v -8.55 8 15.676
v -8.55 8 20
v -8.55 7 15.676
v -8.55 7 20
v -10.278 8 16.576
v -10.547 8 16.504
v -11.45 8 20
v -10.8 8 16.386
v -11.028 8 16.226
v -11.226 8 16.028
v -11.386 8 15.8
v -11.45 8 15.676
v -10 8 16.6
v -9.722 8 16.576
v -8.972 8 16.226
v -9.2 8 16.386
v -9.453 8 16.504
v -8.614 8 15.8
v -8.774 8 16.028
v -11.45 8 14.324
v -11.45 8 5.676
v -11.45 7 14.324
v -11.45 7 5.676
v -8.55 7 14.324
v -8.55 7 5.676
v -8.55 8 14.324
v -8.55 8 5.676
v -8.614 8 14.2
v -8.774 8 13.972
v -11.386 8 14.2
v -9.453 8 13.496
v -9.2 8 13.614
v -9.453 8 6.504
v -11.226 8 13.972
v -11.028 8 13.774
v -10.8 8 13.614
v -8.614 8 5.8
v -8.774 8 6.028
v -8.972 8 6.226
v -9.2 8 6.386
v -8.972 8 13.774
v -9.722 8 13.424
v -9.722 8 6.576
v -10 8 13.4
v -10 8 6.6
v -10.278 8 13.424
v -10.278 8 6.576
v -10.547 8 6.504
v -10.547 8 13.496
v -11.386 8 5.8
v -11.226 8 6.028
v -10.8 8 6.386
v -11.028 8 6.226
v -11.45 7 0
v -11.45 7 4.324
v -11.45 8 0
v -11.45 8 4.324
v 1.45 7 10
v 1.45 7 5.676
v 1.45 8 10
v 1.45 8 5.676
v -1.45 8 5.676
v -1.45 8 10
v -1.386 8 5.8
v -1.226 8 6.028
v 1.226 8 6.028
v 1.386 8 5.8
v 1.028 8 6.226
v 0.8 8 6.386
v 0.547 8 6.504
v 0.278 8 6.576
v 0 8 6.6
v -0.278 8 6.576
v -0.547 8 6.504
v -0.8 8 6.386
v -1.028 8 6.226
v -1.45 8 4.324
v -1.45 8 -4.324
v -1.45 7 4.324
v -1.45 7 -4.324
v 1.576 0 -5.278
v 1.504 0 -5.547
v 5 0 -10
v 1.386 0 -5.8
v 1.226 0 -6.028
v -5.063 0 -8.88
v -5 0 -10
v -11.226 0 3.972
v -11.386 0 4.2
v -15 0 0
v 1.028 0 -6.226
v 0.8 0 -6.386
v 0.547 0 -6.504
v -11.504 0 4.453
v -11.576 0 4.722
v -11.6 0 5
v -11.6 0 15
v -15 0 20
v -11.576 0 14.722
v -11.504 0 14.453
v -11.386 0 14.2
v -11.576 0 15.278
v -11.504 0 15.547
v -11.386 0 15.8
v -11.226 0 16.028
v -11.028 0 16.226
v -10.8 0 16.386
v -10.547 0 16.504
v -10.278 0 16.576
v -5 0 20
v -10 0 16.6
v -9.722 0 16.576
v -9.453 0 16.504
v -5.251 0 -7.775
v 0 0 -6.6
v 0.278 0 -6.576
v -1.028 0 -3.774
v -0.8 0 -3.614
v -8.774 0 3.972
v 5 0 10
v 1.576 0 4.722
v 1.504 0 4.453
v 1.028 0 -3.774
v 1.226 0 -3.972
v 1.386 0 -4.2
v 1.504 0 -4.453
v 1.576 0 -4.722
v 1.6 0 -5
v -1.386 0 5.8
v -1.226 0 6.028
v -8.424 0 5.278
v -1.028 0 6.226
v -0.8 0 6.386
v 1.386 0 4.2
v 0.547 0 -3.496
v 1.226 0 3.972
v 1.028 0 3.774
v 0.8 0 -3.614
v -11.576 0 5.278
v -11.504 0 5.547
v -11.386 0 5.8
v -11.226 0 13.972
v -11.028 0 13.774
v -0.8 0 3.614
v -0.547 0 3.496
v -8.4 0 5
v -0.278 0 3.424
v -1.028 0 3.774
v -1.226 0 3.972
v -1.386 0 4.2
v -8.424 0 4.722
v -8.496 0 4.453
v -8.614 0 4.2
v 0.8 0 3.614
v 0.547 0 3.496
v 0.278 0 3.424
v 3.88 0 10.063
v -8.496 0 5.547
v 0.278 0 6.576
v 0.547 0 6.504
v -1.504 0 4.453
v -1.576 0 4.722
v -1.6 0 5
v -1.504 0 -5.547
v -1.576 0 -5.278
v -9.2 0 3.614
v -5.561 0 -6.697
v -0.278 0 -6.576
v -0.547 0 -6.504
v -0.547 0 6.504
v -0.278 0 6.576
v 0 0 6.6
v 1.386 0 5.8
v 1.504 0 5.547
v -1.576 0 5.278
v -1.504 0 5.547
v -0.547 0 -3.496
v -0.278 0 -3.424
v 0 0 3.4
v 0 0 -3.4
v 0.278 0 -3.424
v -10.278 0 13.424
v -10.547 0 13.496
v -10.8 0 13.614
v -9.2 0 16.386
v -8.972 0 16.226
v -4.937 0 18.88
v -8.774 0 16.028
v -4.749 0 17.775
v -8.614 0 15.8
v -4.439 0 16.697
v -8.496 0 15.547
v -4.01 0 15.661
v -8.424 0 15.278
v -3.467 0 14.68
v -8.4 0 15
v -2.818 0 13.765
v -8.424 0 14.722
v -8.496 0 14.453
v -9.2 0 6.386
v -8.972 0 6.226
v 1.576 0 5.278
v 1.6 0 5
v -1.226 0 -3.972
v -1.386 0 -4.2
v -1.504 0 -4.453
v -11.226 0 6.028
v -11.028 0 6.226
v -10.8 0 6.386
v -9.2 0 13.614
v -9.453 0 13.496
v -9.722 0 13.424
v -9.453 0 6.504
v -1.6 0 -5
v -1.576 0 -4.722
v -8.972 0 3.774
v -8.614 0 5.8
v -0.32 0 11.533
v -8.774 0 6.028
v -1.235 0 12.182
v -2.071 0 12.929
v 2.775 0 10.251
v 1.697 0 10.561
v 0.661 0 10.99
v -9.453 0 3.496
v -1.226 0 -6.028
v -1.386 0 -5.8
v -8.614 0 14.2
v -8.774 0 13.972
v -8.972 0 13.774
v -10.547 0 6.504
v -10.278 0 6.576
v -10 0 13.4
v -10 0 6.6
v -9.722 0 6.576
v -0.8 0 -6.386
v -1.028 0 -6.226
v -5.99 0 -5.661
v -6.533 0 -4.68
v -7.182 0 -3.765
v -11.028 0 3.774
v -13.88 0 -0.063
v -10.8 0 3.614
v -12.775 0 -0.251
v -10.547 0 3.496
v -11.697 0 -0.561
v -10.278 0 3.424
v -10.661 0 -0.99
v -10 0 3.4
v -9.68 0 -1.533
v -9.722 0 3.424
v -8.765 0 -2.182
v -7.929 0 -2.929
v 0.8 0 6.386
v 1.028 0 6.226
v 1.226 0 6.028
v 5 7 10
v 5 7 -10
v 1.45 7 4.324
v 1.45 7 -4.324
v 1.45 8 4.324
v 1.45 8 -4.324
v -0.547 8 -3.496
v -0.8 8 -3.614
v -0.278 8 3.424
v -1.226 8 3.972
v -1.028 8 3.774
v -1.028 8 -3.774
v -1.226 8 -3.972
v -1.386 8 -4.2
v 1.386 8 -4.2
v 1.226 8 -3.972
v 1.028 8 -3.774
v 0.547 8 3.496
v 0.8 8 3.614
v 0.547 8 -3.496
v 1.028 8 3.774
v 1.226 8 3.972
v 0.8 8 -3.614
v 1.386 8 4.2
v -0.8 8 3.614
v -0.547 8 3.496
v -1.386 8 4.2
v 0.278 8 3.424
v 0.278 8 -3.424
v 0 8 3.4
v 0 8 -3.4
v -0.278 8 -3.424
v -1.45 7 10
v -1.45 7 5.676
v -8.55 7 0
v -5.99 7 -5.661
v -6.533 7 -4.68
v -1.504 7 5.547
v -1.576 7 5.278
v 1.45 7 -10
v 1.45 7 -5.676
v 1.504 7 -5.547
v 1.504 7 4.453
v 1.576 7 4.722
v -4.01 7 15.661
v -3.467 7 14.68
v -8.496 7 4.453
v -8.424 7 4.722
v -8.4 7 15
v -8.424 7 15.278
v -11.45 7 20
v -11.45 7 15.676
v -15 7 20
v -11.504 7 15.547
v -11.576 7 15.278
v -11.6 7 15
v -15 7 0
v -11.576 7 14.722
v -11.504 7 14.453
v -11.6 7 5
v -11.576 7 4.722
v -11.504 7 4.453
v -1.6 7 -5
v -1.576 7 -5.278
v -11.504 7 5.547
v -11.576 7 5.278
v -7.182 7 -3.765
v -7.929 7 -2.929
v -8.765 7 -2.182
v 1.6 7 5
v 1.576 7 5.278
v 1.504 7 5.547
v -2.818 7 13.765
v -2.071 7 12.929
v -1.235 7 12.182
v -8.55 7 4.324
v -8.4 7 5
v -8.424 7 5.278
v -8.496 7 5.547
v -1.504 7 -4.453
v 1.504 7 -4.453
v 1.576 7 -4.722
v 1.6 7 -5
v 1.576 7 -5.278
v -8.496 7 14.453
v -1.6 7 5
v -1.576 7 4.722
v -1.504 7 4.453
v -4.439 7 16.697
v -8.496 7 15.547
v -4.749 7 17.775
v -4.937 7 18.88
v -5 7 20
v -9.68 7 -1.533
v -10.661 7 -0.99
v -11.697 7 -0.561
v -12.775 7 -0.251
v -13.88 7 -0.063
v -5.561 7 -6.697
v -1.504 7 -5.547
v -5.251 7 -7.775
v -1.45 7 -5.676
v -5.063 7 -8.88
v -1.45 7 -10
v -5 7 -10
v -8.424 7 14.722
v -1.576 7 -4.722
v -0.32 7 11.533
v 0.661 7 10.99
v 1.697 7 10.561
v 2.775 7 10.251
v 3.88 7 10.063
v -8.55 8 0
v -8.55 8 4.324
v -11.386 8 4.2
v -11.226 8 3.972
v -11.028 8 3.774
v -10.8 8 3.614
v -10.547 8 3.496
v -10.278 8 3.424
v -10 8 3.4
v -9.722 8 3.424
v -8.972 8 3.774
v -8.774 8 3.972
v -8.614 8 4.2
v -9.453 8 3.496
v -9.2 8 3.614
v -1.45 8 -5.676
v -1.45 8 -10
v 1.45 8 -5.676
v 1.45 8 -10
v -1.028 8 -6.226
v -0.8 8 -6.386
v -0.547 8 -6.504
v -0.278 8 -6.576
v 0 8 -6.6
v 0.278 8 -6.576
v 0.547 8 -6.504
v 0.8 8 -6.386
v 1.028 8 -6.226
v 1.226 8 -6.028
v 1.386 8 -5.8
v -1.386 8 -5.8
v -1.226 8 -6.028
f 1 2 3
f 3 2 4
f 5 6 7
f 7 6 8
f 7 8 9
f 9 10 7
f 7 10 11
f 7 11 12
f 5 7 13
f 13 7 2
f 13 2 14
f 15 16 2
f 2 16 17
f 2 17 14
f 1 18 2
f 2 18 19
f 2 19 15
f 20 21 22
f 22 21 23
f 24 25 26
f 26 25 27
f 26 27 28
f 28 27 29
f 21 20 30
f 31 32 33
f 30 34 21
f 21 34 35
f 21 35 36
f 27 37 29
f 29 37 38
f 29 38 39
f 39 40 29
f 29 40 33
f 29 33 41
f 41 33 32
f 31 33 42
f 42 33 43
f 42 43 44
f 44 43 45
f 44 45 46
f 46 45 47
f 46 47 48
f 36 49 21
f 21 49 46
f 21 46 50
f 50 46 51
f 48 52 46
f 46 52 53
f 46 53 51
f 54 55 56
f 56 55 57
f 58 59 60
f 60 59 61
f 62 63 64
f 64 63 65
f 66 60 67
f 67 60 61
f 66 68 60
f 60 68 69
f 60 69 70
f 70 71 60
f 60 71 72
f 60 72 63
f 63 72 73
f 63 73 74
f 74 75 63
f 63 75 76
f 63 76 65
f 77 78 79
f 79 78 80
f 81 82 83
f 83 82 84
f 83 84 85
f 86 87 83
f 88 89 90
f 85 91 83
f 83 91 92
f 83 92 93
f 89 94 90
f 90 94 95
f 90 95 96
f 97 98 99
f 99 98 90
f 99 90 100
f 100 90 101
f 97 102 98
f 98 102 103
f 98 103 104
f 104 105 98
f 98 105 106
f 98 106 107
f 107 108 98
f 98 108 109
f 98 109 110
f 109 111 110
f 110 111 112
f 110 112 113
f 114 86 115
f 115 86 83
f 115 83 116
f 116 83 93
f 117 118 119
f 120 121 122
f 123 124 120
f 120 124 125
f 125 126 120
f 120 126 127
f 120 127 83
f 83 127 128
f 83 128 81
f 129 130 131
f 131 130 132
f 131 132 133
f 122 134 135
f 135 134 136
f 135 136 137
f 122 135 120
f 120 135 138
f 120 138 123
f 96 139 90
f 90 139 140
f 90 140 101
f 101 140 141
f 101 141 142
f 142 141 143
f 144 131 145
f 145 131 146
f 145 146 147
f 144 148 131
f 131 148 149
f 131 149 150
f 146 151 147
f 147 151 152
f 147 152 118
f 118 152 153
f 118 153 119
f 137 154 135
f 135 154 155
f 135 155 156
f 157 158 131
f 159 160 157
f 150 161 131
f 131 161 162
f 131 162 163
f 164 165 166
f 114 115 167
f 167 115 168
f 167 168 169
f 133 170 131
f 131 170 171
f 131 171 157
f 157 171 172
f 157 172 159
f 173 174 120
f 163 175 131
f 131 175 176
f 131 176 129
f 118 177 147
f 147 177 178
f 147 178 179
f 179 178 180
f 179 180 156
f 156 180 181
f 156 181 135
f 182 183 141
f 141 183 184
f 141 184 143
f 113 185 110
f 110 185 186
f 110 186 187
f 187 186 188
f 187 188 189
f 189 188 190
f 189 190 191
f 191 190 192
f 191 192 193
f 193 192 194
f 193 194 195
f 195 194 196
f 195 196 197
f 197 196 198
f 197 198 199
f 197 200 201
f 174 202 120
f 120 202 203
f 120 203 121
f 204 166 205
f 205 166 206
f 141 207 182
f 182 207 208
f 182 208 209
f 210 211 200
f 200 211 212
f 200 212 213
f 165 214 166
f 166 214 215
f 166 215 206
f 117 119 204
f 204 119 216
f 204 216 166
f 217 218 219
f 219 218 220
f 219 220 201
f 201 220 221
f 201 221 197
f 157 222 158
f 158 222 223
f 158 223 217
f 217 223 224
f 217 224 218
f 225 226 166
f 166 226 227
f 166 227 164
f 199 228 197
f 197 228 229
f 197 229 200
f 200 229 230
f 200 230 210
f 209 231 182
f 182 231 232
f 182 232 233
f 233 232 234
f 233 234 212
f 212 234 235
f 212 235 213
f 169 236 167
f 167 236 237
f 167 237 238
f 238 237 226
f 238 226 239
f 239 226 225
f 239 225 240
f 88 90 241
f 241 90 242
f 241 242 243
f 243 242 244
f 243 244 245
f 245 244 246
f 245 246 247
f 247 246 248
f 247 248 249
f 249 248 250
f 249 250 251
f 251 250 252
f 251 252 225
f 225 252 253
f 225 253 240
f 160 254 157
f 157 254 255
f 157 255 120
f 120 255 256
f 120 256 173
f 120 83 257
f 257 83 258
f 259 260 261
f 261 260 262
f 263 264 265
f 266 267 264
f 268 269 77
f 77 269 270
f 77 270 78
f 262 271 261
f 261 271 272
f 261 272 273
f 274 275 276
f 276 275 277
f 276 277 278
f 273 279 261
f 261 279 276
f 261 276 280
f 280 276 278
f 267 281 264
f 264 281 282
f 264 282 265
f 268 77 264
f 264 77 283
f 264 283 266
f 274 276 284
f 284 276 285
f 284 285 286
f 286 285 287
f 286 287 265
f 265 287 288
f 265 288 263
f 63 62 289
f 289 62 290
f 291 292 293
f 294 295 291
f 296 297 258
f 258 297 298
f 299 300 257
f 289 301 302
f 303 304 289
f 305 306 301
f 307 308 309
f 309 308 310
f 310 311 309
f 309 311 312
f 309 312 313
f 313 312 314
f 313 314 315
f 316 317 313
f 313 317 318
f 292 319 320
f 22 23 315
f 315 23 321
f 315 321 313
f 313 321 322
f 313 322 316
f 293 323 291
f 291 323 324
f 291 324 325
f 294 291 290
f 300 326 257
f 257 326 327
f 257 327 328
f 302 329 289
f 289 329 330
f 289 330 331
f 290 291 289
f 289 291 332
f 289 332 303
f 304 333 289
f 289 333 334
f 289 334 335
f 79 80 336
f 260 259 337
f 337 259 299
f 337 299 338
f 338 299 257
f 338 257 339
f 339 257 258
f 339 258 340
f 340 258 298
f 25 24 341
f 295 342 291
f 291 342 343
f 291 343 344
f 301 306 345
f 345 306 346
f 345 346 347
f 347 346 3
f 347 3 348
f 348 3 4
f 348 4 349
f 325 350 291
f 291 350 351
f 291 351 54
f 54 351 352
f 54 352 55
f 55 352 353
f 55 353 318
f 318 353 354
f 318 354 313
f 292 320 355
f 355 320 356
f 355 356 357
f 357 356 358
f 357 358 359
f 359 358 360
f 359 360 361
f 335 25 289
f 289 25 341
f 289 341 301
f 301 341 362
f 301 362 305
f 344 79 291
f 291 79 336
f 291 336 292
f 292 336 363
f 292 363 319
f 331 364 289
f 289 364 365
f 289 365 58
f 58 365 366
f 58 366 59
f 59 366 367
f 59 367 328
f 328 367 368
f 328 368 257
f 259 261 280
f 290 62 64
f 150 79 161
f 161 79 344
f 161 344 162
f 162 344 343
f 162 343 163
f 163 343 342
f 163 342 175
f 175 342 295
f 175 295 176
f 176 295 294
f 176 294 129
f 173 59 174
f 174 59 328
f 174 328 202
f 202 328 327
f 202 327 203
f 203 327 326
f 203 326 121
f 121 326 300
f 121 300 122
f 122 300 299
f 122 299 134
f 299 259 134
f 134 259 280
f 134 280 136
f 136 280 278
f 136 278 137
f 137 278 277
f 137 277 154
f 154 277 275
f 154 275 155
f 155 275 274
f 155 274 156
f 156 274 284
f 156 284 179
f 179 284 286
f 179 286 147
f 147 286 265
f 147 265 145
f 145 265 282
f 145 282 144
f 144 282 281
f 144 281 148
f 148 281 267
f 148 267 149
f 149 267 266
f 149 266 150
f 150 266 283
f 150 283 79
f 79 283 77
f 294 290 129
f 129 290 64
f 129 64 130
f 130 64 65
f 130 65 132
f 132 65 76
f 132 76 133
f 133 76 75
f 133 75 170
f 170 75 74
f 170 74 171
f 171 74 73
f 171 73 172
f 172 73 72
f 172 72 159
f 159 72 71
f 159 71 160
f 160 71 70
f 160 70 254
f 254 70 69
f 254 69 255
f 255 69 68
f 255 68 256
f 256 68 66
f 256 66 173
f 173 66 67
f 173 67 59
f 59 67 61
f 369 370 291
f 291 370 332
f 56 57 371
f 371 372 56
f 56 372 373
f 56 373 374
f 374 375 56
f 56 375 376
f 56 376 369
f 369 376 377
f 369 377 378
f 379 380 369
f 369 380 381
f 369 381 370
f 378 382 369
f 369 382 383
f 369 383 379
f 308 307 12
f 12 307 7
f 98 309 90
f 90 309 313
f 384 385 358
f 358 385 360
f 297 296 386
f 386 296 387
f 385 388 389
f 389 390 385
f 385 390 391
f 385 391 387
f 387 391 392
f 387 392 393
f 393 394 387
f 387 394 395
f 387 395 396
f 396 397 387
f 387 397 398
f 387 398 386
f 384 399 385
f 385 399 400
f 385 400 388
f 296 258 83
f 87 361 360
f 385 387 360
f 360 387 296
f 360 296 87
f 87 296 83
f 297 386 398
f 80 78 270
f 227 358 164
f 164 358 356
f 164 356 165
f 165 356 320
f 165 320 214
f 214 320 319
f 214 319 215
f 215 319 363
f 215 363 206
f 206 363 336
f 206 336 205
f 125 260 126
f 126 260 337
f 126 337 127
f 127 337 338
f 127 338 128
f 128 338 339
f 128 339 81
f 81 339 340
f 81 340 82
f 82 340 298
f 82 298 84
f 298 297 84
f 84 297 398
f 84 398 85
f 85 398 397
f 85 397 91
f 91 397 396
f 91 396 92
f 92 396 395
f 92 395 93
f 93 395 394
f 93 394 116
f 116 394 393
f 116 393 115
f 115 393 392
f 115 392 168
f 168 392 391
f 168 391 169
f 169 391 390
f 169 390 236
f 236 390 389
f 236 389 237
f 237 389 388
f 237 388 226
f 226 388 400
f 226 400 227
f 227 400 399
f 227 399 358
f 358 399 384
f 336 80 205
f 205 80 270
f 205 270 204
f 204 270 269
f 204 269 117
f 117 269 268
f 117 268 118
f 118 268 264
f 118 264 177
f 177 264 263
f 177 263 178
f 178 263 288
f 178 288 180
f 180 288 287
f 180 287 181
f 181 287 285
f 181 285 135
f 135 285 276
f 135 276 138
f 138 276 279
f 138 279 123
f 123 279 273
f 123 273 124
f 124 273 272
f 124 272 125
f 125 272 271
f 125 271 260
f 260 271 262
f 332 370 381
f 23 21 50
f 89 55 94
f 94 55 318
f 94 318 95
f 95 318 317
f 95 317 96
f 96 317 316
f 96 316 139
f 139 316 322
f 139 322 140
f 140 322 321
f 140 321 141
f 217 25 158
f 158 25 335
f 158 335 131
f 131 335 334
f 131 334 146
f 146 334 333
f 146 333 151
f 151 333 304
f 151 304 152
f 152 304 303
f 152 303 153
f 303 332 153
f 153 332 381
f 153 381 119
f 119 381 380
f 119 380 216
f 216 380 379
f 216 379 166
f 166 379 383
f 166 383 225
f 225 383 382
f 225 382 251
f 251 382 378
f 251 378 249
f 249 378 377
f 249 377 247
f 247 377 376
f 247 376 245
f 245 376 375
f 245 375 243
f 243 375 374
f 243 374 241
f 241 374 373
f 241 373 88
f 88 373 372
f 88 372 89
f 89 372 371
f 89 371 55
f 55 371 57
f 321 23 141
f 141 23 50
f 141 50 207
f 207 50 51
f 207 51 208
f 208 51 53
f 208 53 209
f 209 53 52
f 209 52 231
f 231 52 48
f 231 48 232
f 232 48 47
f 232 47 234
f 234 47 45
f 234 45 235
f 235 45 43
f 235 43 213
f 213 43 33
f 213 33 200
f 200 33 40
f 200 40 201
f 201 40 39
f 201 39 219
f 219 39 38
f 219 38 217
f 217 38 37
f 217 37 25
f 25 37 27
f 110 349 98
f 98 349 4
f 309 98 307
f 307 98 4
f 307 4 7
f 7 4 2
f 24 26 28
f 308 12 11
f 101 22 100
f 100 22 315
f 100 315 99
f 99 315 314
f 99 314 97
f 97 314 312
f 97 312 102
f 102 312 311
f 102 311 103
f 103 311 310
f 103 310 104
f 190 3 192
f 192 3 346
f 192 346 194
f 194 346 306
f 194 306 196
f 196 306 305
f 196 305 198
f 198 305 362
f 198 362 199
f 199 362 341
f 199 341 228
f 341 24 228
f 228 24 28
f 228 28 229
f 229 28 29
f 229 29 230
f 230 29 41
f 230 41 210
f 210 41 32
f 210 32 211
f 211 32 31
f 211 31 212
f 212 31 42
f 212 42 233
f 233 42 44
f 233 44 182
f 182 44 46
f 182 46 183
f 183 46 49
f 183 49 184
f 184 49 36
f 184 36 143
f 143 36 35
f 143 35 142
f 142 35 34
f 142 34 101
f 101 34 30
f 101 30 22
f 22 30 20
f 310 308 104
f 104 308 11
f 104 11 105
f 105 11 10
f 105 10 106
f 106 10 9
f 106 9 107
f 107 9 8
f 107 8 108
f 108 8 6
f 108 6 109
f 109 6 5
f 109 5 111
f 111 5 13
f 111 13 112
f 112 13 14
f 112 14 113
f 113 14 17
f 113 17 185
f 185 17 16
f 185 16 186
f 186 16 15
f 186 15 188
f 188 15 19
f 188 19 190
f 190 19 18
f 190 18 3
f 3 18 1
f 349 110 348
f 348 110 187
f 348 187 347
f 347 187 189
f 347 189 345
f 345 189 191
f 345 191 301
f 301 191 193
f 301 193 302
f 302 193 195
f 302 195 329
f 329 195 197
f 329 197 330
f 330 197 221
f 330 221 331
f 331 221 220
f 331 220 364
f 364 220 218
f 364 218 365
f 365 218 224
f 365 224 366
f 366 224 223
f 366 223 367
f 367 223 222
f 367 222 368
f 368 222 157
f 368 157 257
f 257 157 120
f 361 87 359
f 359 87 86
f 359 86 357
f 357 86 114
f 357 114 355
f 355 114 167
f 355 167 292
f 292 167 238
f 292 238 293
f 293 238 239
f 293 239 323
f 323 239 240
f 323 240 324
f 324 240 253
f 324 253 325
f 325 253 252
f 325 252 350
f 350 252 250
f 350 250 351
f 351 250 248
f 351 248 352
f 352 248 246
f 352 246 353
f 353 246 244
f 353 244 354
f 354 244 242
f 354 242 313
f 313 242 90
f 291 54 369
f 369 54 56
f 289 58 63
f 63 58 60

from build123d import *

# Parameters (mm, degrees)
MAIN_DEPTH                = 10
ESQUISSE2_R               = 1.6
TOPHOLE_DEPTH             = 14.747727085
LPATTERN1_COUNT           = 2
LPATTERN1_PITCH           = 10
LPATTERN2_COUNT           = 2
LPATTERN2_PITCH           = 10
LPATTERN2_2_COUNT         = 2
LPATTERN2_2_PITCH         = 10
LPATTERN3_COUNT           = 2
LPATTERN3_PITCH           = 10
LPATTERN3_COPY_1_DEPTH    = 10
LPATTERN3_COPY_2_SKETCH_R = 1.6
LPATTERN3_COPY_2_DEPTH    = 14.747727085
LPATTERN3_COPY_3_DEPTH    = 10
SKETCH1_W                 = 10
SKETCH1_H                 = 10
CUT_EXTRUDE1_DEPTH        = 27.248809497
FILLET1_R                 = 10
SKETCH2_W                 = 10
SKETCH2_H                 = 10
CUT_EXTRUDE2_DEPTH        = 1


with BuildPart() as part:
    # Esquisse1 → Main (new body)
    with BuildSketch(Plane.XY):
        Polygon((-5, 0), (-5, 7), (-1.45, 7), (-1.45, 8), (1.45, 8), (1.45, 7), (5, 7), (5, 0), align=None)
    main = extrude(amount=MAIN_DEPTH)

    # Esquisse2 → TopHole (cut, through all)
    with BuildSketch(Plane(origin=(0, 8, 0), x_dir=(1, 0, 0), z_dir=(0, 1, 0))):
        with Locations(Location((0, -5, 0), (0, 0, 270))):
            Circle(ESQUISSE2_R)
    tophole = extrude(amount=-TOPHOLE_DEPTH, mode=Mode.SUBTRACT)


with BuildPart() as lpattern1_1:
    # LPattern1: pattern copy
    add(part.part.moved(Location(Vector(0, 0, -1) * (1 * LPATTERN1_PITCH))))


with BuildPart() as part_1:
    add(part.part)

    add(lpattern1_1.part)  # LPattern2 merges LPattern1_1
    # LPattern2: Main ×2
    with Locations(*[(-i * LPATTERN2_PITCH, 0, 0) for i in range(1, LPATTERN2_COUNT)]):
        add(main)

    # LPattern2 2: TopHole ×2
    with Locations(*[(-i * LPATTERN2_2_PITCH, 0, 0) for i in range(1, LPATTERN2_2_COUNT)]):
        add(tophole, mode=Mode.SUBTRACT)

    # LPattern3: TopHole ×2
    with Locations(*[(0, 0, i * LPATTERN3_PITCH) for i in range(1, LPATTERN3_COUNT)]):
        add(tophole, mode=Mode.SUBTRACT)

    # LPattern3 copy 1 sketch → LPattern3 copy 1 (add)
    with BuildSketch(Plane(origin=(-10, 0, 10), x_dir=(1, 0, 0), z_dir=(0, 0, 1))):
        Polygon((-5, 0), (-5, 7), (-1.45, 7), (-1.45, 8), (1.45, 8), (1.45, 7), (5, 7), (5, 0), align=None)
    extrude(amount=LPATTERN3_COPY_1_DEPTH)

    # LPattern3 copy 2 sketch → LPattern3 copy 2 (cut, through all)
    with BuildSketch(Plane(origin=(-10, 8, 10), x_dir=(1, 0, 0), z_dir=(0, 1, 0))):
        with Locations(Location((0, -5, 0), (0, 0, 270))):
            Circle(LPATTERN3_COPY_2_SKETCH_R)
    extrude(amount=-LPATTERN3_COPY_2_DEPTH, mode=Mode.SUBTRACT)

    # LPattern3 copy 3 sketch → LPattern3 copy 3 (add)
    with BuildSketch(Plane.XY.offset(10)):
        Polygon((-5, 0), (-5, 7), (-1.45, 7), (-1.45, 8), (1.45, 8), (1.45, 7), (5, 7), (5, 0), align=None)
    extrude(amount=LPATTERN3_COPY_3_DEPTH)

    # Sketch1 → Cut-Extrude1 (cut, through all)
    with BuildSketch(Plane(origin=(0, 8, 0), x_dir=(1, 0, 0), z_dir=(0, 1, 0))):
        with Locations((0, -15)):
            Rectangle(SKETCH1_W, SKETCH1_H)
    extrude(amount=-CUT_EXTRUDE1_DEPTH, mode=Mode.SUBTRACT)

    # Fillet1
    fillet1_edges = [part_1.edges().sort_by_distance(p)[0] for p in [
        (-5, 3.5, 0),
        (-5, 3.5, 10),
    ]]
    fillet(fillet1_edges, radius=FILLET1_R - 0.0001)  # a hair under: the kernel refuses the full size

    # Sketch2 → Cut-Extrude2 (cut)
    with BuildSketch(Plane(origin=(0, 8, 0), x_dir=(1, 0, 0), z_dir=(0, 1, 0))):
        with Locations((-10, 5)):
            Rectangle(SKETCH2_W, SKETCH2_H)
        with Locations((0, -15)):
            Rectangle(SKETCH2_W, SKETCH2_H)
    extrude(amount=-CUT_EXTRUDE2_DEPTH, mode=Mode.SUBTRACT)


solid = part_1.part
